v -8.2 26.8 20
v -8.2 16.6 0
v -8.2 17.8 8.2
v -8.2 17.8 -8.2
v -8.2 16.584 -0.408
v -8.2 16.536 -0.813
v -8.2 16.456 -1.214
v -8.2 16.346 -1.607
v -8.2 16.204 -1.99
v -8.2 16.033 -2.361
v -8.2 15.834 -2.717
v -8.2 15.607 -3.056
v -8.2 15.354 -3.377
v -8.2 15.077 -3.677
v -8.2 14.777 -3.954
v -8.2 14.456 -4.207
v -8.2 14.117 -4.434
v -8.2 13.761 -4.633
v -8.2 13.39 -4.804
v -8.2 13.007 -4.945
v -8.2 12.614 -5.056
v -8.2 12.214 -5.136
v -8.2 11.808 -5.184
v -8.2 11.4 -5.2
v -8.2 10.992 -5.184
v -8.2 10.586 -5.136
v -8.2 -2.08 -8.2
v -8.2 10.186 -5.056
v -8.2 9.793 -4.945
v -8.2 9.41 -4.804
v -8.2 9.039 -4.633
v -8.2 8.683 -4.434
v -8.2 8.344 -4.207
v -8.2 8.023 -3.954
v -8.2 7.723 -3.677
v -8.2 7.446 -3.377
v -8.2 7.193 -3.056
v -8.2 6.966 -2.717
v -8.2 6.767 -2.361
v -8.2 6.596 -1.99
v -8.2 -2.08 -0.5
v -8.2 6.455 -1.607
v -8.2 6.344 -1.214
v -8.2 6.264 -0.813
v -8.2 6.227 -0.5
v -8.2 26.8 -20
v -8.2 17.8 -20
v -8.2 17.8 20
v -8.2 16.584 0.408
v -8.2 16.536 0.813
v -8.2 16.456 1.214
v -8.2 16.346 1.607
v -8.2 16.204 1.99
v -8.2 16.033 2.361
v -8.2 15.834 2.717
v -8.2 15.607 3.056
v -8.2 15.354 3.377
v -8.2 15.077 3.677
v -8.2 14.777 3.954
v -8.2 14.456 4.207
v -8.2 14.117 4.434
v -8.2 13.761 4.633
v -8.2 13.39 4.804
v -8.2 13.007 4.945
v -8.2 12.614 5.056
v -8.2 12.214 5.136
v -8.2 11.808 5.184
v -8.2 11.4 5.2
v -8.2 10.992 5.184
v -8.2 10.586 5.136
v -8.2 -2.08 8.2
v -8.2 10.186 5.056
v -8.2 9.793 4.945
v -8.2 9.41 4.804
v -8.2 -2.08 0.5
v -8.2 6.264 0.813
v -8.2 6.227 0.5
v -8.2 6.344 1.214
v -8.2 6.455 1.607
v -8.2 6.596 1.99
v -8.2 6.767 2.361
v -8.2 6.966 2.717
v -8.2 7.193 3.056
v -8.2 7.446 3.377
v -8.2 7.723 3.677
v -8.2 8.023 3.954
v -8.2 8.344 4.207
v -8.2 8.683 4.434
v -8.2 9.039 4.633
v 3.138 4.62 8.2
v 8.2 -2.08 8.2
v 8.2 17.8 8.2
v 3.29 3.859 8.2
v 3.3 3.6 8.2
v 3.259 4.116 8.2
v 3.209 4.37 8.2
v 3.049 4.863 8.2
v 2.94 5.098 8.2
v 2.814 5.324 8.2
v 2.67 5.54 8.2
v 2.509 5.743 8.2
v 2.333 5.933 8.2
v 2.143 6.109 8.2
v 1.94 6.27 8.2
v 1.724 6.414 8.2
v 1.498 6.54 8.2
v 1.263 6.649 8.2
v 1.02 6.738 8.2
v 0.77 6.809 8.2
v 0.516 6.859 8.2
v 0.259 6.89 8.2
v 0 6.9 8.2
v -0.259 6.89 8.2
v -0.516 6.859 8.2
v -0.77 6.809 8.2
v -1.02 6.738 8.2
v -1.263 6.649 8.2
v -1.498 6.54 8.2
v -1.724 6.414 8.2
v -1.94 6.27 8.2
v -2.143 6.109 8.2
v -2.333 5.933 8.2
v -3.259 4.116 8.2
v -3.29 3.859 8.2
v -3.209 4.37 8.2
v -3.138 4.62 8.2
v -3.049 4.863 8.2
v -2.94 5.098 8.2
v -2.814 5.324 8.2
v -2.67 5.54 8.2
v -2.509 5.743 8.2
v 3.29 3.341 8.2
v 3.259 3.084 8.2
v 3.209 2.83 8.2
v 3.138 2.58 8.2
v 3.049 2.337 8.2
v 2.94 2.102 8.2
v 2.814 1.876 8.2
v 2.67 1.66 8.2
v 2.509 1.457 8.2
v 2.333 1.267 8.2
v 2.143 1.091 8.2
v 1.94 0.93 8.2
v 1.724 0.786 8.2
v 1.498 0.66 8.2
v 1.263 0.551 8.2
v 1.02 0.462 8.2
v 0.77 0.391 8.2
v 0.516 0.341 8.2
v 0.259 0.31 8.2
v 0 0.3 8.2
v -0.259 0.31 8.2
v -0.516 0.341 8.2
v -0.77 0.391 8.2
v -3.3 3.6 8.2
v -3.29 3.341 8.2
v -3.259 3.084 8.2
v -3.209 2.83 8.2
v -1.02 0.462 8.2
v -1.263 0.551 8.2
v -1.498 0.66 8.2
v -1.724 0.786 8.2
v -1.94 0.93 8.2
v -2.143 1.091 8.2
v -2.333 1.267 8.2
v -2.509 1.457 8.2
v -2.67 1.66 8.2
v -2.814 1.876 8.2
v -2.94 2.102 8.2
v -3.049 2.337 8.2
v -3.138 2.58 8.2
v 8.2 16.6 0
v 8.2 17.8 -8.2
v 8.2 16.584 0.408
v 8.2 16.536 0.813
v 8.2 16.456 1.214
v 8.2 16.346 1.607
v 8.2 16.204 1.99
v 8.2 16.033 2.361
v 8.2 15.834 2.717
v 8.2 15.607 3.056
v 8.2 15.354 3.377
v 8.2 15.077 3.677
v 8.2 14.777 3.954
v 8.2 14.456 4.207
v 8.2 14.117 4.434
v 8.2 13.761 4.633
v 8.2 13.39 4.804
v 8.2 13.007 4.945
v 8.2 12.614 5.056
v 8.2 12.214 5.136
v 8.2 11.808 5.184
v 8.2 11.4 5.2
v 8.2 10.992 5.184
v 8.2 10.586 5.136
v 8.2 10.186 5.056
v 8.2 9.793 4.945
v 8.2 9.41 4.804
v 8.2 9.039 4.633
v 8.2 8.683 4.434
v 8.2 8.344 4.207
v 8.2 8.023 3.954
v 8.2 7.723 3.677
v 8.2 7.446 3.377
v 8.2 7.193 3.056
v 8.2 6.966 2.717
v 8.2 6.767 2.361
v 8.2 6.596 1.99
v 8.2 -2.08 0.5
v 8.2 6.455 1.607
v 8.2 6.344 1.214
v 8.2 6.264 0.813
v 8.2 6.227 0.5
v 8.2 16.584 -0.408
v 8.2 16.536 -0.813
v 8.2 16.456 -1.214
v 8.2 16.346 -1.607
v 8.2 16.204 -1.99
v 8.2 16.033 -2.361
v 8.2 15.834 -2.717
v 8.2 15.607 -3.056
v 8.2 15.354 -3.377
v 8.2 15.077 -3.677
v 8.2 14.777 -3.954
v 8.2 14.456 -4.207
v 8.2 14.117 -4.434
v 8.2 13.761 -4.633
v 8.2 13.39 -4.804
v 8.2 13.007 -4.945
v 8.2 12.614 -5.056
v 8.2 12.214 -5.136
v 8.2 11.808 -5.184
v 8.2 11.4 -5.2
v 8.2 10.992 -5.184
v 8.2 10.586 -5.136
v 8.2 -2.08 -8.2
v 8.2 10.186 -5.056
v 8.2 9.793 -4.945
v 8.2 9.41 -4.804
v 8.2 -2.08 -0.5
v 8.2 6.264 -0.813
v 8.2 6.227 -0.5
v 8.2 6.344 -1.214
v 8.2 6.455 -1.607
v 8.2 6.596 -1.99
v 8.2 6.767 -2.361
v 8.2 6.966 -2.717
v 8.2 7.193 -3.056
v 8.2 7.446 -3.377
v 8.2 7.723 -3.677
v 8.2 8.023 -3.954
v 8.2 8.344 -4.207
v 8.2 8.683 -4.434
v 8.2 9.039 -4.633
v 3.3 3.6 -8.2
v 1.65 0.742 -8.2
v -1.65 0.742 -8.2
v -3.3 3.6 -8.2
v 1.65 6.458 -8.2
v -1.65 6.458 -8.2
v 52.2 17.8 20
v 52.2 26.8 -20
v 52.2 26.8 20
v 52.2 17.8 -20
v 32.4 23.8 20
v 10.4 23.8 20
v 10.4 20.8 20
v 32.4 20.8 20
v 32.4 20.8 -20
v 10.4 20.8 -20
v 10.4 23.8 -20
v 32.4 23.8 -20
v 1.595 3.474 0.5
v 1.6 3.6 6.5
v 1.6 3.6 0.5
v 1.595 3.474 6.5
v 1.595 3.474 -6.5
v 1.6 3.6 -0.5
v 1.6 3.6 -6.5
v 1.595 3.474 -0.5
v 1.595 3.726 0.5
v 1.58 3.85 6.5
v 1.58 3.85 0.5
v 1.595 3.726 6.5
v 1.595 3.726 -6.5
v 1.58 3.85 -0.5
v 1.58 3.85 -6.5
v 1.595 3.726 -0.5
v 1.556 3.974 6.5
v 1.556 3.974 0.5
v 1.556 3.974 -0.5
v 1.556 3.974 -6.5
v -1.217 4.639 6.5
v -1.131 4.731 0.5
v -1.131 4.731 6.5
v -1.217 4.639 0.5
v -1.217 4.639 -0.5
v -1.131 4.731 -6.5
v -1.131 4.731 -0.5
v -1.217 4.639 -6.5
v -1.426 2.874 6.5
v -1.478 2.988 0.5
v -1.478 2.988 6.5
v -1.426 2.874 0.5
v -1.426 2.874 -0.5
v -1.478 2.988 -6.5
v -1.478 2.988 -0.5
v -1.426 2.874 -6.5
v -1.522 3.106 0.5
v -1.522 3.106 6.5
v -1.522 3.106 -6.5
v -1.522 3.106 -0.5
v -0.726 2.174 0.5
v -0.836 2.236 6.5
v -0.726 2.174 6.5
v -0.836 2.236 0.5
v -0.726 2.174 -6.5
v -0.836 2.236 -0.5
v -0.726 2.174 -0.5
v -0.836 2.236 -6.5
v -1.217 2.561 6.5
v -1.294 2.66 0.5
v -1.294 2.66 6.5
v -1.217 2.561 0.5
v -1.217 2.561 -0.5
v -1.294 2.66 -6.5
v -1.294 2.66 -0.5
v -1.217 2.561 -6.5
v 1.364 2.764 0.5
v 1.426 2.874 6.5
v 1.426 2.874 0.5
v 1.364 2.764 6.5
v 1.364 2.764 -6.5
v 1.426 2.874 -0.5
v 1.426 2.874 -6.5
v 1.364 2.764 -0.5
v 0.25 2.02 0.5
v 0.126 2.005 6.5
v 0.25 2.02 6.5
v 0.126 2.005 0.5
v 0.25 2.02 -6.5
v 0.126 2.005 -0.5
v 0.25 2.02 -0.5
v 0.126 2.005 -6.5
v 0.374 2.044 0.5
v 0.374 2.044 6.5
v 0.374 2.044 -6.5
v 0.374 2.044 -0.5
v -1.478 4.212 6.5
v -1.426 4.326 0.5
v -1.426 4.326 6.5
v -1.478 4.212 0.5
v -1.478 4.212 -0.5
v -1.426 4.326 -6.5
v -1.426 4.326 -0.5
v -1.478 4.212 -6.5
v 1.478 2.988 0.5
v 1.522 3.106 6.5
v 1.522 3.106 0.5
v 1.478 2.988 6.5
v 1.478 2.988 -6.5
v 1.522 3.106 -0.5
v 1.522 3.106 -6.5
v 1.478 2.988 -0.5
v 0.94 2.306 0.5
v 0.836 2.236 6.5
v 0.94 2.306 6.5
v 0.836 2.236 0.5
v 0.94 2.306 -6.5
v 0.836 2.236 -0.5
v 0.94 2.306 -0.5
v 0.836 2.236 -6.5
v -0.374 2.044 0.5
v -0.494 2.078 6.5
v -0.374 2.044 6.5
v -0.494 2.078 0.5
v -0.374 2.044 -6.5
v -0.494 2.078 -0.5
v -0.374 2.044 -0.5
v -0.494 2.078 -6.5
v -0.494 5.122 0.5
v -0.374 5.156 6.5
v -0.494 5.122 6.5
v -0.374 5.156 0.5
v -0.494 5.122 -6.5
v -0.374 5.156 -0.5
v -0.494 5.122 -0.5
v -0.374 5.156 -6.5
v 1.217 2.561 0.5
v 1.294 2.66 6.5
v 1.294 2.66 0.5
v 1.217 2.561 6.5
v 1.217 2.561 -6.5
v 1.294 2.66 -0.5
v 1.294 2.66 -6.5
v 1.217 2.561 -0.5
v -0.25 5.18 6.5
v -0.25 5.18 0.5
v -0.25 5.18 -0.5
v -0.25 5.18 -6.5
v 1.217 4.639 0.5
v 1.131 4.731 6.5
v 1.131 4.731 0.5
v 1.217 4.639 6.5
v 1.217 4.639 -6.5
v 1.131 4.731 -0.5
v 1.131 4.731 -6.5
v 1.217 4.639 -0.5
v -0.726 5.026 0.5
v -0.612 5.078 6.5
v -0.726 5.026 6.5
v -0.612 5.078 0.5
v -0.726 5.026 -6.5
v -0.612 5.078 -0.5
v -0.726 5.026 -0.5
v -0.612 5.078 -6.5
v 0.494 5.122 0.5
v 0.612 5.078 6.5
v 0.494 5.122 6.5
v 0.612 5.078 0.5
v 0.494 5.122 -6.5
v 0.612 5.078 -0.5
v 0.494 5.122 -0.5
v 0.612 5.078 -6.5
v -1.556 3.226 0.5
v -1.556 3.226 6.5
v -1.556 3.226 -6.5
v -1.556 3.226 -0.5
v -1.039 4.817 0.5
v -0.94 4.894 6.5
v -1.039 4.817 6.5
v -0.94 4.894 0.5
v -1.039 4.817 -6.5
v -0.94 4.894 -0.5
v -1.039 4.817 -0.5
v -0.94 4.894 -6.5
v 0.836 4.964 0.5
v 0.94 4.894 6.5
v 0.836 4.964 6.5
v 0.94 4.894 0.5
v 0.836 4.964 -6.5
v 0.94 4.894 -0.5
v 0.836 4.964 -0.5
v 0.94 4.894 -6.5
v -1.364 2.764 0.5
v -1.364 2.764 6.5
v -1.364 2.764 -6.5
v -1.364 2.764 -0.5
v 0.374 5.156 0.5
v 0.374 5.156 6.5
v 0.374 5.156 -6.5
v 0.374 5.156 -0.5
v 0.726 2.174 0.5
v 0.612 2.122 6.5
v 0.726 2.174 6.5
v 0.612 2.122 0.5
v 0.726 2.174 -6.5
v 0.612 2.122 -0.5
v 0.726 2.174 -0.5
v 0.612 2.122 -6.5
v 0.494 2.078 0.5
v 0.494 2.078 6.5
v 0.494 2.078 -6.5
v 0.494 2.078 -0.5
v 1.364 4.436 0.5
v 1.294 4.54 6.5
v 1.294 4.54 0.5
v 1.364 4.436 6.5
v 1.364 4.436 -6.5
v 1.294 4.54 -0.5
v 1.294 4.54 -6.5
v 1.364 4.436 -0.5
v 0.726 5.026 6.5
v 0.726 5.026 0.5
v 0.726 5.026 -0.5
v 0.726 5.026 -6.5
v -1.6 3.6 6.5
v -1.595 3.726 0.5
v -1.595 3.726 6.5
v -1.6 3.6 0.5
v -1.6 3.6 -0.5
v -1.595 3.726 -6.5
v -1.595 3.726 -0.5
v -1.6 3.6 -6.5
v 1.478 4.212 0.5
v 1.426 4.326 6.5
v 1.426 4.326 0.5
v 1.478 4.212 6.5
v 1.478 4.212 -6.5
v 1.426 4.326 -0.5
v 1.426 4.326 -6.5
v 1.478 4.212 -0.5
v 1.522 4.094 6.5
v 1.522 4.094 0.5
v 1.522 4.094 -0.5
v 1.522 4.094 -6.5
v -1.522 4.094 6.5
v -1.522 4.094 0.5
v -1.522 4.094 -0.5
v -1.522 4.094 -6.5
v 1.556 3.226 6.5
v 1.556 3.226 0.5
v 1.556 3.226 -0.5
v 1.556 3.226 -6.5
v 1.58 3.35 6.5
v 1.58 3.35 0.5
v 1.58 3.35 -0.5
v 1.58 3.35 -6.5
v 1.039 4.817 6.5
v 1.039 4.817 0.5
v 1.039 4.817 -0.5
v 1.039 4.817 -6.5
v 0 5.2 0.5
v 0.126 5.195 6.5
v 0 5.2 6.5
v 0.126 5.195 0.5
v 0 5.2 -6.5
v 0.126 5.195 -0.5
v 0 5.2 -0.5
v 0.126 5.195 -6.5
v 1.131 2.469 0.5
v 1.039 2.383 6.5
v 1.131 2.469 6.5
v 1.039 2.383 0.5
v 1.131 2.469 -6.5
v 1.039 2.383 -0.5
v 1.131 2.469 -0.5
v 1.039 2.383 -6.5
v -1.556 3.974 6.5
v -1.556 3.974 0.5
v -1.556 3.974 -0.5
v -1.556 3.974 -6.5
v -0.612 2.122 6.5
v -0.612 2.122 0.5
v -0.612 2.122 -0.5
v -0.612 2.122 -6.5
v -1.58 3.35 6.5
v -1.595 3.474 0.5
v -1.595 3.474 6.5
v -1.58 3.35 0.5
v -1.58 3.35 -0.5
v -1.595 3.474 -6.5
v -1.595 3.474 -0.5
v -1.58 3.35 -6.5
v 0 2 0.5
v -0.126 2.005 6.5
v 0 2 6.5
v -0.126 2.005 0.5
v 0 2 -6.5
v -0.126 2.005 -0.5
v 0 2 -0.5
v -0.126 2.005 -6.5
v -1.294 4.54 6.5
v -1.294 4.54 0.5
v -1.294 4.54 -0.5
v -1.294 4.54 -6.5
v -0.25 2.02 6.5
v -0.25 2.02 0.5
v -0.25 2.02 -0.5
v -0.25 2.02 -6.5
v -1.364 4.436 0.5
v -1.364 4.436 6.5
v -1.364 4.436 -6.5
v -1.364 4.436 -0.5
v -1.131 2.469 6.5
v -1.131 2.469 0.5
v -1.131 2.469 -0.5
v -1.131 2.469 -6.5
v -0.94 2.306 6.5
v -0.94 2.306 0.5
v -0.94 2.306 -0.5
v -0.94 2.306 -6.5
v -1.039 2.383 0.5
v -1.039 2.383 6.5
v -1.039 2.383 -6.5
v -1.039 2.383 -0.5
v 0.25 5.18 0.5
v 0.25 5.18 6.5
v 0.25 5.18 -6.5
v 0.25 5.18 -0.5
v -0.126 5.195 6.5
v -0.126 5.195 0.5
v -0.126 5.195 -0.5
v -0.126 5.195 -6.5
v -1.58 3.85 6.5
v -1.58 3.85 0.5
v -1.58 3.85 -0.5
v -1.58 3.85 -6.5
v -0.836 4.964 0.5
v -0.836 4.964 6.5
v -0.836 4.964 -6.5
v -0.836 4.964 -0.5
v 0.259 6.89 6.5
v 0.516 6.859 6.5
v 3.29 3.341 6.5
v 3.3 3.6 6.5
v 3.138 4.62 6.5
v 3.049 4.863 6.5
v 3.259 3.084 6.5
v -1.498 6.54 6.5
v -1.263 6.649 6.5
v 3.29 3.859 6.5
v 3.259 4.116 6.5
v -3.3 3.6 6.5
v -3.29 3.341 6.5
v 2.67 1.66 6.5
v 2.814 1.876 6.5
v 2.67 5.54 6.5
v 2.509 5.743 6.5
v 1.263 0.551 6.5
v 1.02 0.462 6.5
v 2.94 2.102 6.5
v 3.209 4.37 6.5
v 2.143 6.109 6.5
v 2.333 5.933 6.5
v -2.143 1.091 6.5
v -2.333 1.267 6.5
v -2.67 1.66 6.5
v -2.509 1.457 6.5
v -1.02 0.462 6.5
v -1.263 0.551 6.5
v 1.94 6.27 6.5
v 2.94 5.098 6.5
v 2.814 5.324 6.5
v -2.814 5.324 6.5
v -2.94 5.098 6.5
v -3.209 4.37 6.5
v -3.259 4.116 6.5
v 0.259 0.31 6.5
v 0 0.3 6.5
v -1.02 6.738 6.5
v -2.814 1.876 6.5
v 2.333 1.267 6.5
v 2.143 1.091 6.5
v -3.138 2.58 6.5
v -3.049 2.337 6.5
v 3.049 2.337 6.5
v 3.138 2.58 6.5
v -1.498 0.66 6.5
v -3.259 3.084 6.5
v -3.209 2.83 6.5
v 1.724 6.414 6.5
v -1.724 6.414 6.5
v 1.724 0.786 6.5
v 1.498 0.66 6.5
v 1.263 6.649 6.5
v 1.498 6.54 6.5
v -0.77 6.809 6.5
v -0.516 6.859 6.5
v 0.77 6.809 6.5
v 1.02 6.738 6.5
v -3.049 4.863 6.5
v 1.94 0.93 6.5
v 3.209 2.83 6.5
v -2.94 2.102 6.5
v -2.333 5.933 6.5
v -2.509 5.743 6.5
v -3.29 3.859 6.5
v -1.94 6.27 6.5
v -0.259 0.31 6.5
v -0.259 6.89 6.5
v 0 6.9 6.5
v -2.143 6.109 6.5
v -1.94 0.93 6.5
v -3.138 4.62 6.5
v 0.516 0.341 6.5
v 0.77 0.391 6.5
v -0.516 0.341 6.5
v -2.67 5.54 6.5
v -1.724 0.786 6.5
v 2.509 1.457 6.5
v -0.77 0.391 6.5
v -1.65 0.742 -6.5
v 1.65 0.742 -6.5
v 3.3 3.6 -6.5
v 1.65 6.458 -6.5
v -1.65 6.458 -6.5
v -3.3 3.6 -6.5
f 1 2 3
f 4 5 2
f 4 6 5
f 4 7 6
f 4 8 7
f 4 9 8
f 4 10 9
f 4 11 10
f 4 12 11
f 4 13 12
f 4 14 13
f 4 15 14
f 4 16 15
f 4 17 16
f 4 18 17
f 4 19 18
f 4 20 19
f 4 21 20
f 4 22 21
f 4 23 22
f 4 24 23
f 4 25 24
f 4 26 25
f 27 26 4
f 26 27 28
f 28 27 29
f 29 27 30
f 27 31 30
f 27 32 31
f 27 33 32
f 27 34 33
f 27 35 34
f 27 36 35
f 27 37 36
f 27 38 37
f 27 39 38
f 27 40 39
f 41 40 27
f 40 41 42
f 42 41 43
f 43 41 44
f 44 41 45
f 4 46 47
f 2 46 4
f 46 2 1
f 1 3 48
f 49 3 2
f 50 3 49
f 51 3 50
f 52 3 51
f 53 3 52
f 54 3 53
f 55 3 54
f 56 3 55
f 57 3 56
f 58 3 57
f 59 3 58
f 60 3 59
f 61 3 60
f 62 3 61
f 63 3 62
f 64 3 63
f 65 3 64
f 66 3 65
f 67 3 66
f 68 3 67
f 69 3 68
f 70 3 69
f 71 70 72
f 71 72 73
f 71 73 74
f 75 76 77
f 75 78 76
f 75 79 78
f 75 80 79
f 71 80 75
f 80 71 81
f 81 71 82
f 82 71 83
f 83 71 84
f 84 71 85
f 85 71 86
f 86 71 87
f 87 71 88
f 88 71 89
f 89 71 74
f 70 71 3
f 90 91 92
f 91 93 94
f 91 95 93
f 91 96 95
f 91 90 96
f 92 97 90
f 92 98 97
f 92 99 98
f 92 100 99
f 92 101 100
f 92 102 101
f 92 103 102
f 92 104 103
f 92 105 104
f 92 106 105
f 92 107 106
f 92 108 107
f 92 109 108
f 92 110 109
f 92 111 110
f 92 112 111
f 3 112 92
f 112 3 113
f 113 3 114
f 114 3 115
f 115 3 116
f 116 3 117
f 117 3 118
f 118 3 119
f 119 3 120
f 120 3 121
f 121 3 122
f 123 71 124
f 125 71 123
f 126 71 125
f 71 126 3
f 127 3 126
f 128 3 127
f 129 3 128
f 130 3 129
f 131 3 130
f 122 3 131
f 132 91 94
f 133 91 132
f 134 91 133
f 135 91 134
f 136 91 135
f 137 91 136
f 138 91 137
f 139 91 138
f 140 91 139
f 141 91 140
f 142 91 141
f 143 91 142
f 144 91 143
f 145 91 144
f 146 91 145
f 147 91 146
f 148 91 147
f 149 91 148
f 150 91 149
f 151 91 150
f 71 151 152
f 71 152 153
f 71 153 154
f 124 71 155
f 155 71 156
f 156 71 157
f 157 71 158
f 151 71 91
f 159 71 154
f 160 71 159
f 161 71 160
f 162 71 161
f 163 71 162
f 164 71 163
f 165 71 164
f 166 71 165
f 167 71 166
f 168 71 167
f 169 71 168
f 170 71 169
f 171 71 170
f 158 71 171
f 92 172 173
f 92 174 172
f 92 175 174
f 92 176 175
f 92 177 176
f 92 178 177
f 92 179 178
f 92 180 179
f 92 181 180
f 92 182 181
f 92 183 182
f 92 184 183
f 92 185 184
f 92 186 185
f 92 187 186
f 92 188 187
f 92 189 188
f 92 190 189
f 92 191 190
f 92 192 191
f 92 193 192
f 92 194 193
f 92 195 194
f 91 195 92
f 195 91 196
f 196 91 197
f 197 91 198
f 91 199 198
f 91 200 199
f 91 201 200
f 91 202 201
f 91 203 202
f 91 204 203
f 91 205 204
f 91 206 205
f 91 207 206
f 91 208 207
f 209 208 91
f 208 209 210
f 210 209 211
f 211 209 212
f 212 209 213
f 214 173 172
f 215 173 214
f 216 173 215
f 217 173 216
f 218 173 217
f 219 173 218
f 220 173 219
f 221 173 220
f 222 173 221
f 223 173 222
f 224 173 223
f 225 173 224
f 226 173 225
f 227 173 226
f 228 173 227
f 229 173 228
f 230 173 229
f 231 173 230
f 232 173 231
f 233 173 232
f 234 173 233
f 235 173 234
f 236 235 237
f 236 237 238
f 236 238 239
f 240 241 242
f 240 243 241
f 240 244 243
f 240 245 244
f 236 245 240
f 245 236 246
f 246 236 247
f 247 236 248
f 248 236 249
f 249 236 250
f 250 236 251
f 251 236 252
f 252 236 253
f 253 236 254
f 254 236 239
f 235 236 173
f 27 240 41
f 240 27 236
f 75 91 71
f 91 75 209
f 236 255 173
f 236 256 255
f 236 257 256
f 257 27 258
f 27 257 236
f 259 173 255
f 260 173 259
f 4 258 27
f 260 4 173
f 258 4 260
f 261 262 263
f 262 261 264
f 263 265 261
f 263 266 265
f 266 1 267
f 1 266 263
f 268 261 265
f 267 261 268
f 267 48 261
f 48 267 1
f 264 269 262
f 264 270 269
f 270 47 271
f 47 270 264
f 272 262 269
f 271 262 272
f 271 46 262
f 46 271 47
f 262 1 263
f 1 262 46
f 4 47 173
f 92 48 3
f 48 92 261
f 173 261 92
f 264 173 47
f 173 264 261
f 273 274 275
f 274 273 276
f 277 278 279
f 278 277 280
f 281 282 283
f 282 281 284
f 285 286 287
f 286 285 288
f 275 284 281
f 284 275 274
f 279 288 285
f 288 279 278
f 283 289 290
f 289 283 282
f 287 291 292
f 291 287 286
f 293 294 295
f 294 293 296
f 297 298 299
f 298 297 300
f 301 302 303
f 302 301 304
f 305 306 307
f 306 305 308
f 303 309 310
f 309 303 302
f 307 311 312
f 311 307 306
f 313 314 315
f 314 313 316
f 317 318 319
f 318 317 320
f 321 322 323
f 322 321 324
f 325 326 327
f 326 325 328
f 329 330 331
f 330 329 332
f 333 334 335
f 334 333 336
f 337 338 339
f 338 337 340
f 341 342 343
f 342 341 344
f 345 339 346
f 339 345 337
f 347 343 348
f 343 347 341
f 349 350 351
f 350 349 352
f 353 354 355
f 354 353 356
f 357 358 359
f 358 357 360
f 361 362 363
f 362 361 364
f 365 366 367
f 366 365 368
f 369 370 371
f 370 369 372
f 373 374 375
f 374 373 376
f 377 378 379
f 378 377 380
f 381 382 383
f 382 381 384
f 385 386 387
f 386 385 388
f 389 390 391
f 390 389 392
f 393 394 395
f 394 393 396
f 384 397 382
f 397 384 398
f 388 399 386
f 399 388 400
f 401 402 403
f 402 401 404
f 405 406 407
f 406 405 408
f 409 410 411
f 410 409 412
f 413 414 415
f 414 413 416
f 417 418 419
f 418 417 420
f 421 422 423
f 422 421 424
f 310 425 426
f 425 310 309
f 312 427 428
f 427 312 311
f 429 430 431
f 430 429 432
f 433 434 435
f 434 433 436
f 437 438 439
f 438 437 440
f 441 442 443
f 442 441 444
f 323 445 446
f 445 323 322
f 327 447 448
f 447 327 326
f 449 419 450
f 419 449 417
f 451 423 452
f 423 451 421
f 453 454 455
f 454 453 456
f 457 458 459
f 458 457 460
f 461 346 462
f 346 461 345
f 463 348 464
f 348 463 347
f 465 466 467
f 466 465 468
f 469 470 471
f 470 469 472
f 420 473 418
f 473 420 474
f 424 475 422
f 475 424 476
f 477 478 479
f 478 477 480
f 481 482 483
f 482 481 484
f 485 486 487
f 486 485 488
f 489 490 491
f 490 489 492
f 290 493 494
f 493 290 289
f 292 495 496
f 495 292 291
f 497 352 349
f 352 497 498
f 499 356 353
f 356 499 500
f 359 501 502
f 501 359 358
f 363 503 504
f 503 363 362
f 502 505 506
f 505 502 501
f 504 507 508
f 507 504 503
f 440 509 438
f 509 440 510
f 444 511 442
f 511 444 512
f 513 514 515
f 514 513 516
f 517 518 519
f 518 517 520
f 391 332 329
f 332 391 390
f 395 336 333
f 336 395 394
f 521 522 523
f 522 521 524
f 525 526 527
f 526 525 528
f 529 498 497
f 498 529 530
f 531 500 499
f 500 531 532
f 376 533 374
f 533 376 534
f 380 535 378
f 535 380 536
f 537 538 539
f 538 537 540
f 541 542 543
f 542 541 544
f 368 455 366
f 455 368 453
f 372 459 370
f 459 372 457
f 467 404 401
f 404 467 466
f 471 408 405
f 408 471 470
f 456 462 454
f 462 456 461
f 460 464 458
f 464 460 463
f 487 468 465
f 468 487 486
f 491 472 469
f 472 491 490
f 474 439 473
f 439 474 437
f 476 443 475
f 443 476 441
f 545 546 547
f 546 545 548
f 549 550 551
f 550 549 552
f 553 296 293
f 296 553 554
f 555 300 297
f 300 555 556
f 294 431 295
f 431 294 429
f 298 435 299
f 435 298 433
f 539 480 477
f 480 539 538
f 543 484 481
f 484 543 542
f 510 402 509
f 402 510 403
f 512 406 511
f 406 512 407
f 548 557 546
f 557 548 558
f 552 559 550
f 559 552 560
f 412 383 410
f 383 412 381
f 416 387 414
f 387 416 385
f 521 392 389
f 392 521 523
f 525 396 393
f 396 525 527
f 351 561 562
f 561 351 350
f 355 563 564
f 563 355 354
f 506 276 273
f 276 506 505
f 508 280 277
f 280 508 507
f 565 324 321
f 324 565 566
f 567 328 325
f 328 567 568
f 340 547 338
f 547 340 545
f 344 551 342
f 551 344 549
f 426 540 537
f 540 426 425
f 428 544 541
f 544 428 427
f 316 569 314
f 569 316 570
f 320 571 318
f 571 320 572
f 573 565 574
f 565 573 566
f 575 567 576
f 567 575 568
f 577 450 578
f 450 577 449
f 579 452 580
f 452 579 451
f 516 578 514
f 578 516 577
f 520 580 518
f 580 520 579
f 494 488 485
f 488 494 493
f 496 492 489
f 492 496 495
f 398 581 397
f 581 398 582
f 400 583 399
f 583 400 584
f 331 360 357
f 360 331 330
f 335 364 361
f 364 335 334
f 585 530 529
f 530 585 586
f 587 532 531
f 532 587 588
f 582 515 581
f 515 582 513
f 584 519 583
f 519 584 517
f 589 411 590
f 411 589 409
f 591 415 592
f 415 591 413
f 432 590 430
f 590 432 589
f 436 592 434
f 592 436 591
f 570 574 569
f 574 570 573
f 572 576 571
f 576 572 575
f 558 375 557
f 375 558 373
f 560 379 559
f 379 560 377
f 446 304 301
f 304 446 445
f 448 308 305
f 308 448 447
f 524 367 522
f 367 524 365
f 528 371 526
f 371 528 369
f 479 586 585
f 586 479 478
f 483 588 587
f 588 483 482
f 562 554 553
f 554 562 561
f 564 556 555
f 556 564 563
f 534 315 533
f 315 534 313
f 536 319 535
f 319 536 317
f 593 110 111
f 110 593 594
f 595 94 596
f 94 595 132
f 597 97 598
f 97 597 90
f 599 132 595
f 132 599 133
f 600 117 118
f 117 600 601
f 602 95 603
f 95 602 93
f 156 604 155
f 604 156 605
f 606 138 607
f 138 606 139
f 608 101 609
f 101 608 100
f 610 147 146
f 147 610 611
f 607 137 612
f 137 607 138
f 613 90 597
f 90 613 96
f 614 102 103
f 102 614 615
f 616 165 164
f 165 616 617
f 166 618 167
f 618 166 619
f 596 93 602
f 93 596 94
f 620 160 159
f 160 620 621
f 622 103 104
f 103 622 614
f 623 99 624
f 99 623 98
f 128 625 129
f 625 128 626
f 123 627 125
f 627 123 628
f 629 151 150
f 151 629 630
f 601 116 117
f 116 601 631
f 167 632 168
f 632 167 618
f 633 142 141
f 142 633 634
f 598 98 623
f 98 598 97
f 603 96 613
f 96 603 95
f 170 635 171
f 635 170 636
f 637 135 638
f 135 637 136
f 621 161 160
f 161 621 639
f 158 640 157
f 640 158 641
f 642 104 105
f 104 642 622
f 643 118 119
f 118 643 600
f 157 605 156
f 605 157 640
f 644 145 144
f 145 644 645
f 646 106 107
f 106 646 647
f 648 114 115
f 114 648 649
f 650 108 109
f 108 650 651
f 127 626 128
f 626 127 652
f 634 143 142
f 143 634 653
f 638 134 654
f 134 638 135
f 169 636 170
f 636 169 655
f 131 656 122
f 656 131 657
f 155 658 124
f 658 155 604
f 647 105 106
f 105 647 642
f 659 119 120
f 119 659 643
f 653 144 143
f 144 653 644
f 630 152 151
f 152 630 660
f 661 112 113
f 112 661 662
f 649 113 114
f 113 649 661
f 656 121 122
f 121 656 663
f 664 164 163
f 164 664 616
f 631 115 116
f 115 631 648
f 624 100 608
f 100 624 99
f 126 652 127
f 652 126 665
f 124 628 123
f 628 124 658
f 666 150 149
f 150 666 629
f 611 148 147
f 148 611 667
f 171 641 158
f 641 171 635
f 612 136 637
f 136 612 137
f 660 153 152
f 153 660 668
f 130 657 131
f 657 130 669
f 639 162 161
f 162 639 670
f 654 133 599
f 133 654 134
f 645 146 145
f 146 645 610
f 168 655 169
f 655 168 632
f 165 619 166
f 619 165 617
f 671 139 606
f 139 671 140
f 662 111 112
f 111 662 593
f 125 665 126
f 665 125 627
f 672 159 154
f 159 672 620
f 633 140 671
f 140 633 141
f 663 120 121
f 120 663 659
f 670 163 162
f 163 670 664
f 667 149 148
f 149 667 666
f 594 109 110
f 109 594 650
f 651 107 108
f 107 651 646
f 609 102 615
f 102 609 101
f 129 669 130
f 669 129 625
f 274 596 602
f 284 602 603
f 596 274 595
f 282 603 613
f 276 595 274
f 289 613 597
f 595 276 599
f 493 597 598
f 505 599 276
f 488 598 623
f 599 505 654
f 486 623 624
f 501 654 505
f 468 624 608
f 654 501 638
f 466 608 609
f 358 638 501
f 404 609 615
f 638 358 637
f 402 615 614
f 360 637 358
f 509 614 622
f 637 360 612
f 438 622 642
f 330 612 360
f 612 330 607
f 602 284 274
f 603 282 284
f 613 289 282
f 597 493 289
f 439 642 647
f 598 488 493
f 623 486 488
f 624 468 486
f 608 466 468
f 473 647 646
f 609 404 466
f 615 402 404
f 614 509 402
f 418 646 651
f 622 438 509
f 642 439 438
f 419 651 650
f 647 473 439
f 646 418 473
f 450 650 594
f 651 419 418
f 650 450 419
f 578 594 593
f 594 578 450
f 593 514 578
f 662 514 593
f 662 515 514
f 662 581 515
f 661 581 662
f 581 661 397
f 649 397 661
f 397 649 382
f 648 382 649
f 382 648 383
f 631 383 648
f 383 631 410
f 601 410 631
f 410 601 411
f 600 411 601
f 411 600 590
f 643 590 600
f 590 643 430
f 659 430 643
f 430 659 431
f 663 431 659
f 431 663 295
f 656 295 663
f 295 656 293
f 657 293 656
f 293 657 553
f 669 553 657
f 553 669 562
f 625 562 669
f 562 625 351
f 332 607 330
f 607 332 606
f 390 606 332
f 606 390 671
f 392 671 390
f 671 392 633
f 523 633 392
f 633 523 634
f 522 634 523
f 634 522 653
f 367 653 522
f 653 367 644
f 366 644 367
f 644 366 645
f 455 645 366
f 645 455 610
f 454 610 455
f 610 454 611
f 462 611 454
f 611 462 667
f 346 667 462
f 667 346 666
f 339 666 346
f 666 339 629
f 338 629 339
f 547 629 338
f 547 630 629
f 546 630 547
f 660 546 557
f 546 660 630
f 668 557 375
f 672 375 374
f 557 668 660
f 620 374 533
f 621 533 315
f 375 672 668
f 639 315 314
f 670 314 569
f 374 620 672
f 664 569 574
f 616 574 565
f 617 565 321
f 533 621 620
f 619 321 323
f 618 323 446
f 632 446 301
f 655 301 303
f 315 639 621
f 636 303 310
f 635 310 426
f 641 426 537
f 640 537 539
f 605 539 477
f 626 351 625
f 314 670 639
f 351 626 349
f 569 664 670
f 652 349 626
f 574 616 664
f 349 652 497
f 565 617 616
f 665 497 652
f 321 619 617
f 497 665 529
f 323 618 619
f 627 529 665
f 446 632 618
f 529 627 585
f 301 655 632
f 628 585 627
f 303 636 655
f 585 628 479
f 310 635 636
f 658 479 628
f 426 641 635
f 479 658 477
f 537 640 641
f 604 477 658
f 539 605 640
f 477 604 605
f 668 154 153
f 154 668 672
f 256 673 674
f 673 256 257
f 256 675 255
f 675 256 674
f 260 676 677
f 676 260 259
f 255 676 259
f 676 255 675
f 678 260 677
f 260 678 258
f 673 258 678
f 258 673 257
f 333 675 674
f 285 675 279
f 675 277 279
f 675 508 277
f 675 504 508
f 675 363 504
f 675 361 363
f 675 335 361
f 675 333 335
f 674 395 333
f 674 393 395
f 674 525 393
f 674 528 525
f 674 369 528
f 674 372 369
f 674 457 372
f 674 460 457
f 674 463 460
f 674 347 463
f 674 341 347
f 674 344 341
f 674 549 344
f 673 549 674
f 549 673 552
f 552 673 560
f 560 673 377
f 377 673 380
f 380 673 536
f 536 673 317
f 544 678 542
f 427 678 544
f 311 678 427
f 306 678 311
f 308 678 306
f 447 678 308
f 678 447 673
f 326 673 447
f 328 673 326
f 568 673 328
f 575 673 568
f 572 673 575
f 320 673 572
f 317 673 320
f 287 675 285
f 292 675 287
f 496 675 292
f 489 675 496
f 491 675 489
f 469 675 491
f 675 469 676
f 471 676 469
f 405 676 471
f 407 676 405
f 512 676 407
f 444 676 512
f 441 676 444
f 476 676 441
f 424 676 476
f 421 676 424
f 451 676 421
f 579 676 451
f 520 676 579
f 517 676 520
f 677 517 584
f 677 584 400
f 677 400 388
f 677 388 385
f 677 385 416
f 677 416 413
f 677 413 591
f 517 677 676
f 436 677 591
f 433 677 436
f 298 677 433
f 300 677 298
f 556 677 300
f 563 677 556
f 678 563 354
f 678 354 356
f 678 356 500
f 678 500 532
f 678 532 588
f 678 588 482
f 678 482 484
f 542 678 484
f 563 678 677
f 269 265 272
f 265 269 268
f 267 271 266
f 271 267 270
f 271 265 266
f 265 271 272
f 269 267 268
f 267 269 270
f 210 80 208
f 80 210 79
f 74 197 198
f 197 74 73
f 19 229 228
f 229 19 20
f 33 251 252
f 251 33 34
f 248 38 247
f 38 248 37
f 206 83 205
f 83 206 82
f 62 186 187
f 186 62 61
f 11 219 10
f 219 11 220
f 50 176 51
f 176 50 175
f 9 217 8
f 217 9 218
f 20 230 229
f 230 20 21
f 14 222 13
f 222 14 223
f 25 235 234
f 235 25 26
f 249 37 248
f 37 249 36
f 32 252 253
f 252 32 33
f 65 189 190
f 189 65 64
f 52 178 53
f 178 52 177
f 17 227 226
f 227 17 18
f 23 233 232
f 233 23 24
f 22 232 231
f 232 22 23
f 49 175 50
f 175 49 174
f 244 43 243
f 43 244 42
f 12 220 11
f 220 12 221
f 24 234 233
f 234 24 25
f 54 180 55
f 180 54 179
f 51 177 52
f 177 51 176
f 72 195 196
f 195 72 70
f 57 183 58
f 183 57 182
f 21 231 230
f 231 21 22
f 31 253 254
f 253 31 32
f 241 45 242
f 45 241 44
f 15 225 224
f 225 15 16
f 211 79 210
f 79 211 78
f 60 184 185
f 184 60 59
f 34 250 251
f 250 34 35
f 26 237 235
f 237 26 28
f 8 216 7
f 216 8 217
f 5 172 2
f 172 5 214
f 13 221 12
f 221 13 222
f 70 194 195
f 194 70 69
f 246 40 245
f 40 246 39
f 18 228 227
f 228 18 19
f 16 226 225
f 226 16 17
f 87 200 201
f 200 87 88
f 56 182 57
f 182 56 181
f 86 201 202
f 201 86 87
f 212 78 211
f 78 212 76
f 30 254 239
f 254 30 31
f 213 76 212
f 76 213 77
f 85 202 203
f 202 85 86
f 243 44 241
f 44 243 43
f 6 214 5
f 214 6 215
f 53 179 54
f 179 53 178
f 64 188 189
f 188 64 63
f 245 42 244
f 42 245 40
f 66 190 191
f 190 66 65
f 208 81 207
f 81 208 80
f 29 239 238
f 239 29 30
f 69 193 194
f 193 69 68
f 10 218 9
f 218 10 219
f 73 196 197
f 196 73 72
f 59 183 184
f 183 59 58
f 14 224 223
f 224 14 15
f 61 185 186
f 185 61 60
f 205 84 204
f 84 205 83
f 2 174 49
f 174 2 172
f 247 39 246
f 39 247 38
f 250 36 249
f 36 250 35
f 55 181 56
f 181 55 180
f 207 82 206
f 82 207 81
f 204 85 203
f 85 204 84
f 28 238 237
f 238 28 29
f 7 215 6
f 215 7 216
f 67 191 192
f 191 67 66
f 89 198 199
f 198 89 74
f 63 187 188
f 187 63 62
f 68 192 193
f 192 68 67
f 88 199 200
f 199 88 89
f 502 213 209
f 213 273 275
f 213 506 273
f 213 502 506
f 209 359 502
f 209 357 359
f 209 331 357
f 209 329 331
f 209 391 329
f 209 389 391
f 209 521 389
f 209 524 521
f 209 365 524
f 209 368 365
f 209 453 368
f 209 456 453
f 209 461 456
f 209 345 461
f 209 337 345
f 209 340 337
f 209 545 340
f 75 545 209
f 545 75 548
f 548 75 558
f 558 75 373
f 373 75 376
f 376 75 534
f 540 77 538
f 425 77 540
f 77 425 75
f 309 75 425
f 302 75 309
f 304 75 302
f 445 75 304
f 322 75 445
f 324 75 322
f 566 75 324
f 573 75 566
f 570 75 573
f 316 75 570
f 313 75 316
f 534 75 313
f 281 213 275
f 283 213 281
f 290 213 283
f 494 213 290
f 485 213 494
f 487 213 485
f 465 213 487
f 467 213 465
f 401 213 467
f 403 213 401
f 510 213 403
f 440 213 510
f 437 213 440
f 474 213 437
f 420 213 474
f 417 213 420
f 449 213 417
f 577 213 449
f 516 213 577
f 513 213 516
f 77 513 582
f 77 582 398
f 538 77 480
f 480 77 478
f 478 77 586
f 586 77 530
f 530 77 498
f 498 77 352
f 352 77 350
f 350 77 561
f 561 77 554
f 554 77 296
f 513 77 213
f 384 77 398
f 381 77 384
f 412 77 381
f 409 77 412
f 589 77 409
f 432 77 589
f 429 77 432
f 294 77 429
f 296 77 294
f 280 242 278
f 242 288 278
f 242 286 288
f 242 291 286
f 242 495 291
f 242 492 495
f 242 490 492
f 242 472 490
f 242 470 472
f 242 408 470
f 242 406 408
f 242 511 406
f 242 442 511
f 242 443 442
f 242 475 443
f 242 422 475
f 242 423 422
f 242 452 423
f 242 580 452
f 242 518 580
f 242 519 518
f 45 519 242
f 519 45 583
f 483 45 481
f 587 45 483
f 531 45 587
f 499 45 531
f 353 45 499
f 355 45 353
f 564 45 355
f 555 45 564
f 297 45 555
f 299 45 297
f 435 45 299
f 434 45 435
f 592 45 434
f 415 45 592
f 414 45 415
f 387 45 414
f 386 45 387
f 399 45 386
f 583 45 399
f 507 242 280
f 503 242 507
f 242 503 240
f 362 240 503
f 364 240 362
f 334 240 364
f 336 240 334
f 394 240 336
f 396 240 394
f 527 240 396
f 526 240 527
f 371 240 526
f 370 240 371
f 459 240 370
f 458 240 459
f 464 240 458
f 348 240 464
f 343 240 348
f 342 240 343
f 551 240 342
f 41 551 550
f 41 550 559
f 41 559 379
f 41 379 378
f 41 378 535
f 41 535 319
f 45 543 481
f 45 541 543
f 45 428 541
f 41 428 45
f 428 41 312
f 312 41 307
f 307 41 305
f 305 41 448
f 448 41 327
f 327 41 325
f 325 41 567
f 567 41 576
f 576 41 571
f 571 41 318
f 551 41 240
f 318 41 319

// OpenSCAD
// file: 888_1000.scad
/*
// Nastavení zobrazení
$vpr = [338, 0, 357];
$vpt = [180, 25, -18];
$vpd = 1280;
*/
//improving rendering speed.
draft = true;   // sets rendering quality to draft.
$fs = draft ? 5 : 0.5;
$fa = 10;

/*
TODO: 

Přední díl obsahuje převis ve směru vybrání pro držák motoru. (U horního zámku)
Otvory pro šrouby v předním dílu jsou oválné, protože nejsou kolmo k rovině modelu.


*/




//vnitřní kapka
module hollowing_skeleton(shell_thickness = hull_wall_thickness, draft)
{

    beta = 90 - trailing_edge_angle(naca = hull_airfoil_thickness); // calculate the angle of trailing edge
    trailing_wall= 1/(cos(beta)); //calculate lenght of wall cut relative to wall thickness 

    intersection () {
    resize([hull_drop_length - shell_thickness - trailing_wall* shell_thickness, (hull_drop_length*hull_airfoil_thickness/100) - 2*shell_thickness, (hull_drop_length*hull_airfoil_thickness/100) - 2*shell_thickness], auto=true)
            rotate ([0,90,0])           
            rotate_extrude($fn = draft ? 50 : 100)
                rotate([0,0,90])
                    difference()
                    {
                      polygon(points = airfoil_data(naca=hull_airfoil_thickness, L = hull_drop_length, N=draft ? 50 : 200)); 
                      square(hull_drop_length); 
                    }
                    
      translate([0,0,hull_corner_radius])
        minkowski(){                   
            translate ([0,- hull_y_size , - hull_z_size/2 + shell_thickness])
                cube ([hull_x_size,2*hull_y_size - shell_thickness, hull_z_size - 2*shell_thickness - 2*hull_corner_radius]);
                rotate ([0,90,0])
                    cylinder (h = 1, r = hull_corner_radius, $fn = draft ? 50 : 100);                   
          }
                            
    }
}

module hollowing_skeleton_hem(ribbon_width, draft)
{

    beta = 90 - trailing_edge_angle(naca = hull_airfoil_thickness); // calculate the angle of trailing edge
    trailing_wall= 1/(cos(beta)); //calculate lenght of wall cut relative to wall thickness 

    intersection () {
    resize([hull_drop_length - ribbon_width - trailing_wall* ribbon_width, (hull_drop_length*hull_airfoil_thickness/100) - 2*ribbon_width, (hull_drop_length*hull_airfoil_thickness/100) - 2*ribbon_width], auto=true)
            rotate ([0,90,0])           
            rotate_extrude($fn = draft ? 50 : 100)
                rotate([0,0,90])
                    difference()
                    {
                      polygon(points = airfoil_data(naca=hull_airfoil_thickness, L = hull_drop_length, N=draft ? 50 : 200)); 
                      square(hull_drop_length); 
                    }
                    
      translate([0,0,hull_corner_radius])
        minkowski(){                   
            translate ([0,- hull_y_size, - hull_z_size/2 + ribbon_width])
                cube ([hull_x_size,2*hull_y_size - ribbon_width, hull_z_size - 2*ribbon_width - 2*hull_corner_radius]);
                rotate ([0,90,0])
                    cylinder (h = 1, r = hull_corner_radius, $fn = draft ? 50 : 100);                   
          }
                            
    }
}




//celá kapka
module drop(draft = true)
{

    beta = 90 - trailing_edge_angle(naca = hull_airfoil_thickness); // calculate the angle of trailing edge
    trailing_wall= 1/(cos(beta)); //calculate lenght of wall cut relative to wall thickness 

	intersection () {
    	rotate ([0,90,0])           
        	rotate_extrude($fn = draft ? 50 : 100)
                    rotate([0,0,90])
                        difference()
                        {
	                        polygon(points = airfoil_data(naca=hull_airfoil_thickness, L =hull_drop_length , N=draft ? 50 : 200)); 
    	                    square(hull_drop_length); 
        	            }
            		
        translate([0,0,hull_corner_radius])
          	minkowski(){                   
             	translate ([0,-hull_y_size,-hull_z_size/2])
             			cube ([hull_x_size, 2*hull_y_size,hull_z_size-2*hull_corner_radius]);
             	  	rotate ([0,90,0])
                 		cylinder (h = 1, r = hull_corner_radius, $fn = draft ? 50 : 100);                   
		    }
		    
	}
}


//základní kapka
module drop_skin(draft){

	difference(){
			drop();
		translate([hull_wall_thickness,0,0])
			hollowing_skeleton();
	}

}




drop_skin();














use <./lib/naca4.scad>
include <../Parameters.scad>
// file: ../Parameters.scad
//Main tube diameter - hole [mm]
main_tube_outer_diameter = 25.4;
main_tube_inner_diameter = 23.5;

//Tube for undercarriage - hole [mm]
tube_for_undercarriage_outer_diameter = 10.6;
tube_for_undercarriage_inner_diameter = 6;
global_clearance = 0.5;


//umístění podvozkových trubek

second_undercarriage_hole = main_tube_outer_diameter*2 + main_tube_outer_diameter/5 + main_tube_outer_diameter/2 + 170 + 160;

// Parameters of cube couplings
coupling_wall_thickness = main_tube_outer_diameter/5;  //width of coupling walls 
thickness_between_tubes = main_tube_outer_diameter/10;    // minimum distance between tubes in couplings

coupling_wall_thickness_undercarriage = tube_for_undercarriage_outer_diameter/3;
thickness_between_tubes_undercarriage = tube_for_undercarriage_outer_diameter/10;

//Screw diameter and nut for M4 [mm]
M4_screw_diameter=4.5;
Nut_height_M4 = 3.2;
Nut_diameter_M4 = 7.86;


//Screw diameter and nut for M3 [mm]
M3_screw_diameter = 3.2;
Nut_height_M3 = 1.7;	
Nut_diameter_M3 = 6.6; 


//The tube for help
Help_main_tube_outer = 25;
Help_main_tube_inner = 23; 
Help_tube_for_undercarriage_outer = 10;
Help_tube_for_undercarriage_inner = 5;


//main hull parameters

hull_drop_length = 580;
hull_wall_thickness = 0.8;
hull_y_size = 120;
hull_z_size = 150;
hull_x_size = 580;
hull_corner_radius = 4;
hull_airfoil_thickness= 35;  // thickness of drop generating airfoil in percent of lenght.
hull_scale_x = 1;
hull_scale_y = 1.5;
hull_scale_z = 1.5;

main_pilon_position = 170+68;
cover_pilon_position = 180;
height_of_vertical_tube = 275; //278mm je změřená délka trubky. 

ribbon_width = 5; // šířka vyztužovacích lemů. 

// šířka otvoru v přední části kapoty pro držák motoru.
width_of_engine_holder = 63;

//Top Cover Division - dělení horního krytu pro tisk
top_cover_division = [0, 50, 150, 280, 410, hull_x_size]; // upraveny seznam tak, aby deleni začinalo od nuly, což umožňí úplně automatické rozdělení.

//Bottom Cover Division - dělení dolního krytu pro tisk
bottom_cover_division = [0,100,250,365, 470, hull_x_size];
// zkrácená část pro payload pro testovací tisk
//bottom_cover_division = [0,200,250,365, 470, hull_x_size];

//Base Divison - dělení podložky
base_division = [0,140,280,410, hull_x_size];

//Cover pilon division - na výšku (v ose Z)
cover_pilon_division = [0,170,height_of_vertical_tube + main_tube_outer_diameter + coupling_wall_thickness];

//pozice šroubů
	//horní kryt
top_screw_position = [0, (top_cover_division[0] + top_cover_division[1])/4, (top_cover_division[2] - top_cover_division[1])/2 + top_cover_division[1], (top_cover_division[3] - top_cover_division[2])/2 + top_cover_division[2],(top_cover_division[4] - top_cover_division[3])/2 + top_cover_division[3],(top_cover_division[5] - top_cover_division[4])/2 + top_cover_division[4] - 20];
	//spodní kryt
bottom_screw_position = [0,(bottom_cover_division[0] + bottom_cover_division[1])/15 + 5, bottom_cover_division[1]/1.1, + bottom_cover_division[3], bottom_cover_division[3] + bottom_cover_division[1]/2, bottom_cover_division[4] - 6*global_clearance, bottom_cover_division[4] + bottom_cover_division[1]/2.5];




//šířka zámků
lock_width = 10;

//délka zámků
lock_length = 3;


//accumulator
//základní rozměry akumulátoru
width_of_accumulator = 129.4;//45+1;
depth_of_accumulator = 40.61;
height_of_accumulator = 43.65;
//Zapuštění akumulátoru
sink_of_accumulator = 5; //main_tube_outer_diameter/5 - Nut_height_M3*1.5;

//tloušťka hrany spojky
accumulator_holder_width = 18; 
accumulator_holder_thickness = 10; 

//posunutí akumálátoru na podložce
move_of_accumulator = 165;   // pozice akumulátoru (ovlivňuje těžiště)


////////////////
// Senzory
///////////////////

//opticalFlow
    width_optical_flow_senzor = 45.5;
    depth_optical_flow_senzor = 6;
    height_optical_flow_senzor = 35;
    sink_of_optical_flow_senzor = depth_optical_flow_senzor - 5; 
    M3_optical_flow_senzor_Z = 30.4;
    M3_optical_flow_senzor_X = 24;
    M3_optical_flow_senzor_Z_alone = 9.1;
    M3_optical_flow_senzor_X_alone = 16.7;
// file: lib/naca4.scad
// Naca4.scad - library for parametric airfoils of 4 digit NACA series
// Code: Rudolf Huttary, Berlin 
// June 2015
// commercial use prohibited


// general use: for more examples refer to sampler.scad
// naca = naca digits or 3el vector  (default = 12 or [0, 0, .12])
// L    = chord length [mm]      (default= 100)
// N    = # sample points        (default= 81)
// h    = height [mm]            (default= 1)
// open = close at the thin end? (default = true)
// two equivalent example calls
 airfoil(naca = 2408, L = 60, N=1001, h = 30, open = false); 
// airfoil(naca = [.2, .4, .32], L = 60, N=1001, h = 30, open = false); 

module help()
{
  echo(str("\n\nList of signatures in lib:\n=================\n", 
  "module airfoil(naca=2412, L = 100, N = 81, h = 1, open = false) - renders airfoil object\n", 
  "module airfoil(naca=[.2, .4, .12], L = 100, N = 81, h = 1, open = false) - renders airfoil object using percentage for camber,  camber distance and thicknes\n", 
  "function airfoil_data(naca=12, L = 100, N = 81, open = false)\n",
  "=================\n")); 
}

help(); 
// this is the object
module airfoil(naca=12, L = 100, N = 81, h = 1, open = false)
{
  linear_extrude(height = h)
  polygon(points = airfoil_data(naca, L, N, open)); 
}

module hollow_airfoil(lnaca=12, L = 100, N = 81, h = 1, open = false, wall_thickness = 1)
{
    if (open){
        linear_extrude(height = h)

        if (wall_thickness>0){
            difference(){
                polygon(points = airfoil_data(naca, L, N, false));
                offset(delta = - wall_thickness, chamfer = false) polygon(points = airfoil_data(naca, L, N, open = false));
            }
        }
        else{
            difference(){
                offset(delta = - wall_thickness, chamfer = false) polygon(points = airfoil_data(naca, L, N, open = false));
                polygon(points = airfoil_data(naca, L, N, false));
            }
        }
    }
    else{

        linear_extrude(height = abs(wall_thickness))
            polygon(points = airfoil_data(naca, L, N, false)); 

        linear_extrude(height = h)
            difference(){
                polygon(points = airfoil_data(naca, L, N, open));
                offset(delta = - wall_thickness) polygon(points = airfoil_data(naca, L, N, open = false));
            }

        translate([0,0, h - wall_thickness])
            linear_extrude(height = abs(wall_thickness))
                polygon(points = airfoil_data(naca, L, N, false)); 

    }
}


// this is the main function providing the airfoil data
function airfoil_data(naca=12, L = 100, N = 81, open = false) = 
  let(Na = len(naca)!=3?NACA(naca):naca)
  let(A = [.2969, -0.126, -.3516, .2843, open?-0.1015:-0.1036])
  [for (b=[-180:360/(N):179.99]) 
    let (x = (1-cos(b))/2)  
    let(yt = sign(b)*Na[2]/.2*(A*[sqrt(x), x, x*x, x*x*x, x*x*x*x])) 
    Na[0]==0?L*[x, yt]:L*camber(x, yt, Na[0], Na[1], sign(b))];  


function trailing_edge_angle(naca=12, open = false) = 
  let(Na = len(naca)!=3?NACA(naca):naca)
  let(A = [.2969, -0.126, -.3516, .2843, open?-0.1015:-0.1036])
  let (x =0.999)  // set x near to airfoil trailing edge
  let(yt = Na[2]/.2*(A*[sqrt(x), x, x*x, x*x*x, x*x*x*x])) // calculate distance from x-axis at previously set position
  atan2(yt,1-x);  // calculate angle of triangle between end of airfoil. The triange height corresponds to previously calculated distance from x-axis

function surface_angle(x = 0.5, naca=12, open = false) = 
  let(Na = len(naca)!=3?NACA(naca):naca)
  let(A = [0.2969, -0.126, -0.3516, 0.2843, open?-0.1015:-0.1036])
  let(dy = Na[2]/0.2*(A*[(1/2)*(1/sqrt(x)), 1, 2*x, 3*x*x, 4*x*x*x])) // calculate derivative of airfoil function at the x point
  atan(dy);  // calculate  the angle from function derivative

function surface_distance(x = 0.5, naca=12, open = false) = 
  let(Na = len(naca)!=3?NACA(naca):naca)
  let(A = [0.2969, -0.126, -0.3516, 0.2843, open?-0.1015:-0.1036])
  Na[2]/.2*(A*[sqrt(x), x, x*x, x*x*x, x*x*x*x]); // calculate distance from x-axis at previously set position

// helper functions
function NACA(naca) = 
  let (M = floor(naca/1000))
  let (P = floor((naca-M*1000)/100)) 
  [M/100, P/10, floor(naca-M*1000-P*100)/100];  

function camber(x, y, M, P, upper) = 
  let(yc = (x<P)?M/P/P*(2*P*x-x*x): M/(1-P)/(1-P)*(1 - 2*P + 2*P*x -x*x))
  let(dy = (x<P)?2*M/P/P*(P-x):2*M/(1-P)/(1-P)*(P-x))
  let(th = atan(dy))
  [upper ? x - y*sin(th):x + y*sin(th), upper ? yc + y*cos(th):yc - y*cos(th)];
// main file
// patka pro pridelani predni tyce pylonu k nosniku
include <../parameters.scad>
use <888_1004.scad>

$fn = 80;
draft = $preview;


strap_width = 22;
strap_thickness = 3;


module 888_1036_single(){


    difference(){
        union(){
            hull(){
                //cylinder(d = tube_for_undercarriage_outer_diameter + 2* beam_min_wall, h = tube_for_undercarriage_outer_diameter + 2*beam_min_wall, center = true);
                height = tube_for_undercarriage_outer_diameter+2.5*beam_min_wall*2;
                translate([0, height*0.5 - tube_for_undercarriage_outer_diameter*0.2, 0])
                    cube([tube_for_undercarriage_outer_diameter+2*beam_min_wall, height, tube_for_undercarriage_outer_diameter + 2*beam_min_wall], center = true);
            }

            // plochá část s otvorem pro pásku
            translate([strap_width, tube_for_undercarriage_outer_diameter + tube_for_undercarriage_outer_diameter + beam_min_wall/2, 0])
                cube([strap_width*2 + tube_for_undercarriage_outer_diameter+2*beam_min_wall, strap_thickness*3, accumulator_holder_width], center = true);
        }

        // otvor pro pásku
        translate([strap_width/2 + tube_for_undercarriage_outer_diameter, tube_for_undercarriage_outer_diameter + tube_for_undercarriage_outer_diameter + beam_min_wall/2, 0])
            cube([strap_width, strap_thickness, accumulator_holder_width+1], center = true);


        translate([0, tube_for_undercarriage_outer_diameter + beam_vertical_space_between_pipes, 0])
            rotate([0, 90, 0])
                cylinder(d = tube_for_undercarriage_outer_diameter, h = tube_for_undercarriage_outer_diameter+2*beam_min_wall + 1, center = true);

        // otvory pro srouby
        translate([0, tube_for_undercarriage_outer_diameter*0.25 + beam_vertical_space_between_pipes , 0]){
            cylinder(d = M3_screw_diameter, h = 20, center = true);

            translate([0, 0, 6.5])
                cylinder(d = M3_nut_diameter, h = 20);

            translate([0, 0, -20-6.5])
                cylinder(d = M3_nut_diameter, h = 20, $fn = 6);
        }

        cube([30, 20, 1], center = true);

    }
}




888_1036_single();
